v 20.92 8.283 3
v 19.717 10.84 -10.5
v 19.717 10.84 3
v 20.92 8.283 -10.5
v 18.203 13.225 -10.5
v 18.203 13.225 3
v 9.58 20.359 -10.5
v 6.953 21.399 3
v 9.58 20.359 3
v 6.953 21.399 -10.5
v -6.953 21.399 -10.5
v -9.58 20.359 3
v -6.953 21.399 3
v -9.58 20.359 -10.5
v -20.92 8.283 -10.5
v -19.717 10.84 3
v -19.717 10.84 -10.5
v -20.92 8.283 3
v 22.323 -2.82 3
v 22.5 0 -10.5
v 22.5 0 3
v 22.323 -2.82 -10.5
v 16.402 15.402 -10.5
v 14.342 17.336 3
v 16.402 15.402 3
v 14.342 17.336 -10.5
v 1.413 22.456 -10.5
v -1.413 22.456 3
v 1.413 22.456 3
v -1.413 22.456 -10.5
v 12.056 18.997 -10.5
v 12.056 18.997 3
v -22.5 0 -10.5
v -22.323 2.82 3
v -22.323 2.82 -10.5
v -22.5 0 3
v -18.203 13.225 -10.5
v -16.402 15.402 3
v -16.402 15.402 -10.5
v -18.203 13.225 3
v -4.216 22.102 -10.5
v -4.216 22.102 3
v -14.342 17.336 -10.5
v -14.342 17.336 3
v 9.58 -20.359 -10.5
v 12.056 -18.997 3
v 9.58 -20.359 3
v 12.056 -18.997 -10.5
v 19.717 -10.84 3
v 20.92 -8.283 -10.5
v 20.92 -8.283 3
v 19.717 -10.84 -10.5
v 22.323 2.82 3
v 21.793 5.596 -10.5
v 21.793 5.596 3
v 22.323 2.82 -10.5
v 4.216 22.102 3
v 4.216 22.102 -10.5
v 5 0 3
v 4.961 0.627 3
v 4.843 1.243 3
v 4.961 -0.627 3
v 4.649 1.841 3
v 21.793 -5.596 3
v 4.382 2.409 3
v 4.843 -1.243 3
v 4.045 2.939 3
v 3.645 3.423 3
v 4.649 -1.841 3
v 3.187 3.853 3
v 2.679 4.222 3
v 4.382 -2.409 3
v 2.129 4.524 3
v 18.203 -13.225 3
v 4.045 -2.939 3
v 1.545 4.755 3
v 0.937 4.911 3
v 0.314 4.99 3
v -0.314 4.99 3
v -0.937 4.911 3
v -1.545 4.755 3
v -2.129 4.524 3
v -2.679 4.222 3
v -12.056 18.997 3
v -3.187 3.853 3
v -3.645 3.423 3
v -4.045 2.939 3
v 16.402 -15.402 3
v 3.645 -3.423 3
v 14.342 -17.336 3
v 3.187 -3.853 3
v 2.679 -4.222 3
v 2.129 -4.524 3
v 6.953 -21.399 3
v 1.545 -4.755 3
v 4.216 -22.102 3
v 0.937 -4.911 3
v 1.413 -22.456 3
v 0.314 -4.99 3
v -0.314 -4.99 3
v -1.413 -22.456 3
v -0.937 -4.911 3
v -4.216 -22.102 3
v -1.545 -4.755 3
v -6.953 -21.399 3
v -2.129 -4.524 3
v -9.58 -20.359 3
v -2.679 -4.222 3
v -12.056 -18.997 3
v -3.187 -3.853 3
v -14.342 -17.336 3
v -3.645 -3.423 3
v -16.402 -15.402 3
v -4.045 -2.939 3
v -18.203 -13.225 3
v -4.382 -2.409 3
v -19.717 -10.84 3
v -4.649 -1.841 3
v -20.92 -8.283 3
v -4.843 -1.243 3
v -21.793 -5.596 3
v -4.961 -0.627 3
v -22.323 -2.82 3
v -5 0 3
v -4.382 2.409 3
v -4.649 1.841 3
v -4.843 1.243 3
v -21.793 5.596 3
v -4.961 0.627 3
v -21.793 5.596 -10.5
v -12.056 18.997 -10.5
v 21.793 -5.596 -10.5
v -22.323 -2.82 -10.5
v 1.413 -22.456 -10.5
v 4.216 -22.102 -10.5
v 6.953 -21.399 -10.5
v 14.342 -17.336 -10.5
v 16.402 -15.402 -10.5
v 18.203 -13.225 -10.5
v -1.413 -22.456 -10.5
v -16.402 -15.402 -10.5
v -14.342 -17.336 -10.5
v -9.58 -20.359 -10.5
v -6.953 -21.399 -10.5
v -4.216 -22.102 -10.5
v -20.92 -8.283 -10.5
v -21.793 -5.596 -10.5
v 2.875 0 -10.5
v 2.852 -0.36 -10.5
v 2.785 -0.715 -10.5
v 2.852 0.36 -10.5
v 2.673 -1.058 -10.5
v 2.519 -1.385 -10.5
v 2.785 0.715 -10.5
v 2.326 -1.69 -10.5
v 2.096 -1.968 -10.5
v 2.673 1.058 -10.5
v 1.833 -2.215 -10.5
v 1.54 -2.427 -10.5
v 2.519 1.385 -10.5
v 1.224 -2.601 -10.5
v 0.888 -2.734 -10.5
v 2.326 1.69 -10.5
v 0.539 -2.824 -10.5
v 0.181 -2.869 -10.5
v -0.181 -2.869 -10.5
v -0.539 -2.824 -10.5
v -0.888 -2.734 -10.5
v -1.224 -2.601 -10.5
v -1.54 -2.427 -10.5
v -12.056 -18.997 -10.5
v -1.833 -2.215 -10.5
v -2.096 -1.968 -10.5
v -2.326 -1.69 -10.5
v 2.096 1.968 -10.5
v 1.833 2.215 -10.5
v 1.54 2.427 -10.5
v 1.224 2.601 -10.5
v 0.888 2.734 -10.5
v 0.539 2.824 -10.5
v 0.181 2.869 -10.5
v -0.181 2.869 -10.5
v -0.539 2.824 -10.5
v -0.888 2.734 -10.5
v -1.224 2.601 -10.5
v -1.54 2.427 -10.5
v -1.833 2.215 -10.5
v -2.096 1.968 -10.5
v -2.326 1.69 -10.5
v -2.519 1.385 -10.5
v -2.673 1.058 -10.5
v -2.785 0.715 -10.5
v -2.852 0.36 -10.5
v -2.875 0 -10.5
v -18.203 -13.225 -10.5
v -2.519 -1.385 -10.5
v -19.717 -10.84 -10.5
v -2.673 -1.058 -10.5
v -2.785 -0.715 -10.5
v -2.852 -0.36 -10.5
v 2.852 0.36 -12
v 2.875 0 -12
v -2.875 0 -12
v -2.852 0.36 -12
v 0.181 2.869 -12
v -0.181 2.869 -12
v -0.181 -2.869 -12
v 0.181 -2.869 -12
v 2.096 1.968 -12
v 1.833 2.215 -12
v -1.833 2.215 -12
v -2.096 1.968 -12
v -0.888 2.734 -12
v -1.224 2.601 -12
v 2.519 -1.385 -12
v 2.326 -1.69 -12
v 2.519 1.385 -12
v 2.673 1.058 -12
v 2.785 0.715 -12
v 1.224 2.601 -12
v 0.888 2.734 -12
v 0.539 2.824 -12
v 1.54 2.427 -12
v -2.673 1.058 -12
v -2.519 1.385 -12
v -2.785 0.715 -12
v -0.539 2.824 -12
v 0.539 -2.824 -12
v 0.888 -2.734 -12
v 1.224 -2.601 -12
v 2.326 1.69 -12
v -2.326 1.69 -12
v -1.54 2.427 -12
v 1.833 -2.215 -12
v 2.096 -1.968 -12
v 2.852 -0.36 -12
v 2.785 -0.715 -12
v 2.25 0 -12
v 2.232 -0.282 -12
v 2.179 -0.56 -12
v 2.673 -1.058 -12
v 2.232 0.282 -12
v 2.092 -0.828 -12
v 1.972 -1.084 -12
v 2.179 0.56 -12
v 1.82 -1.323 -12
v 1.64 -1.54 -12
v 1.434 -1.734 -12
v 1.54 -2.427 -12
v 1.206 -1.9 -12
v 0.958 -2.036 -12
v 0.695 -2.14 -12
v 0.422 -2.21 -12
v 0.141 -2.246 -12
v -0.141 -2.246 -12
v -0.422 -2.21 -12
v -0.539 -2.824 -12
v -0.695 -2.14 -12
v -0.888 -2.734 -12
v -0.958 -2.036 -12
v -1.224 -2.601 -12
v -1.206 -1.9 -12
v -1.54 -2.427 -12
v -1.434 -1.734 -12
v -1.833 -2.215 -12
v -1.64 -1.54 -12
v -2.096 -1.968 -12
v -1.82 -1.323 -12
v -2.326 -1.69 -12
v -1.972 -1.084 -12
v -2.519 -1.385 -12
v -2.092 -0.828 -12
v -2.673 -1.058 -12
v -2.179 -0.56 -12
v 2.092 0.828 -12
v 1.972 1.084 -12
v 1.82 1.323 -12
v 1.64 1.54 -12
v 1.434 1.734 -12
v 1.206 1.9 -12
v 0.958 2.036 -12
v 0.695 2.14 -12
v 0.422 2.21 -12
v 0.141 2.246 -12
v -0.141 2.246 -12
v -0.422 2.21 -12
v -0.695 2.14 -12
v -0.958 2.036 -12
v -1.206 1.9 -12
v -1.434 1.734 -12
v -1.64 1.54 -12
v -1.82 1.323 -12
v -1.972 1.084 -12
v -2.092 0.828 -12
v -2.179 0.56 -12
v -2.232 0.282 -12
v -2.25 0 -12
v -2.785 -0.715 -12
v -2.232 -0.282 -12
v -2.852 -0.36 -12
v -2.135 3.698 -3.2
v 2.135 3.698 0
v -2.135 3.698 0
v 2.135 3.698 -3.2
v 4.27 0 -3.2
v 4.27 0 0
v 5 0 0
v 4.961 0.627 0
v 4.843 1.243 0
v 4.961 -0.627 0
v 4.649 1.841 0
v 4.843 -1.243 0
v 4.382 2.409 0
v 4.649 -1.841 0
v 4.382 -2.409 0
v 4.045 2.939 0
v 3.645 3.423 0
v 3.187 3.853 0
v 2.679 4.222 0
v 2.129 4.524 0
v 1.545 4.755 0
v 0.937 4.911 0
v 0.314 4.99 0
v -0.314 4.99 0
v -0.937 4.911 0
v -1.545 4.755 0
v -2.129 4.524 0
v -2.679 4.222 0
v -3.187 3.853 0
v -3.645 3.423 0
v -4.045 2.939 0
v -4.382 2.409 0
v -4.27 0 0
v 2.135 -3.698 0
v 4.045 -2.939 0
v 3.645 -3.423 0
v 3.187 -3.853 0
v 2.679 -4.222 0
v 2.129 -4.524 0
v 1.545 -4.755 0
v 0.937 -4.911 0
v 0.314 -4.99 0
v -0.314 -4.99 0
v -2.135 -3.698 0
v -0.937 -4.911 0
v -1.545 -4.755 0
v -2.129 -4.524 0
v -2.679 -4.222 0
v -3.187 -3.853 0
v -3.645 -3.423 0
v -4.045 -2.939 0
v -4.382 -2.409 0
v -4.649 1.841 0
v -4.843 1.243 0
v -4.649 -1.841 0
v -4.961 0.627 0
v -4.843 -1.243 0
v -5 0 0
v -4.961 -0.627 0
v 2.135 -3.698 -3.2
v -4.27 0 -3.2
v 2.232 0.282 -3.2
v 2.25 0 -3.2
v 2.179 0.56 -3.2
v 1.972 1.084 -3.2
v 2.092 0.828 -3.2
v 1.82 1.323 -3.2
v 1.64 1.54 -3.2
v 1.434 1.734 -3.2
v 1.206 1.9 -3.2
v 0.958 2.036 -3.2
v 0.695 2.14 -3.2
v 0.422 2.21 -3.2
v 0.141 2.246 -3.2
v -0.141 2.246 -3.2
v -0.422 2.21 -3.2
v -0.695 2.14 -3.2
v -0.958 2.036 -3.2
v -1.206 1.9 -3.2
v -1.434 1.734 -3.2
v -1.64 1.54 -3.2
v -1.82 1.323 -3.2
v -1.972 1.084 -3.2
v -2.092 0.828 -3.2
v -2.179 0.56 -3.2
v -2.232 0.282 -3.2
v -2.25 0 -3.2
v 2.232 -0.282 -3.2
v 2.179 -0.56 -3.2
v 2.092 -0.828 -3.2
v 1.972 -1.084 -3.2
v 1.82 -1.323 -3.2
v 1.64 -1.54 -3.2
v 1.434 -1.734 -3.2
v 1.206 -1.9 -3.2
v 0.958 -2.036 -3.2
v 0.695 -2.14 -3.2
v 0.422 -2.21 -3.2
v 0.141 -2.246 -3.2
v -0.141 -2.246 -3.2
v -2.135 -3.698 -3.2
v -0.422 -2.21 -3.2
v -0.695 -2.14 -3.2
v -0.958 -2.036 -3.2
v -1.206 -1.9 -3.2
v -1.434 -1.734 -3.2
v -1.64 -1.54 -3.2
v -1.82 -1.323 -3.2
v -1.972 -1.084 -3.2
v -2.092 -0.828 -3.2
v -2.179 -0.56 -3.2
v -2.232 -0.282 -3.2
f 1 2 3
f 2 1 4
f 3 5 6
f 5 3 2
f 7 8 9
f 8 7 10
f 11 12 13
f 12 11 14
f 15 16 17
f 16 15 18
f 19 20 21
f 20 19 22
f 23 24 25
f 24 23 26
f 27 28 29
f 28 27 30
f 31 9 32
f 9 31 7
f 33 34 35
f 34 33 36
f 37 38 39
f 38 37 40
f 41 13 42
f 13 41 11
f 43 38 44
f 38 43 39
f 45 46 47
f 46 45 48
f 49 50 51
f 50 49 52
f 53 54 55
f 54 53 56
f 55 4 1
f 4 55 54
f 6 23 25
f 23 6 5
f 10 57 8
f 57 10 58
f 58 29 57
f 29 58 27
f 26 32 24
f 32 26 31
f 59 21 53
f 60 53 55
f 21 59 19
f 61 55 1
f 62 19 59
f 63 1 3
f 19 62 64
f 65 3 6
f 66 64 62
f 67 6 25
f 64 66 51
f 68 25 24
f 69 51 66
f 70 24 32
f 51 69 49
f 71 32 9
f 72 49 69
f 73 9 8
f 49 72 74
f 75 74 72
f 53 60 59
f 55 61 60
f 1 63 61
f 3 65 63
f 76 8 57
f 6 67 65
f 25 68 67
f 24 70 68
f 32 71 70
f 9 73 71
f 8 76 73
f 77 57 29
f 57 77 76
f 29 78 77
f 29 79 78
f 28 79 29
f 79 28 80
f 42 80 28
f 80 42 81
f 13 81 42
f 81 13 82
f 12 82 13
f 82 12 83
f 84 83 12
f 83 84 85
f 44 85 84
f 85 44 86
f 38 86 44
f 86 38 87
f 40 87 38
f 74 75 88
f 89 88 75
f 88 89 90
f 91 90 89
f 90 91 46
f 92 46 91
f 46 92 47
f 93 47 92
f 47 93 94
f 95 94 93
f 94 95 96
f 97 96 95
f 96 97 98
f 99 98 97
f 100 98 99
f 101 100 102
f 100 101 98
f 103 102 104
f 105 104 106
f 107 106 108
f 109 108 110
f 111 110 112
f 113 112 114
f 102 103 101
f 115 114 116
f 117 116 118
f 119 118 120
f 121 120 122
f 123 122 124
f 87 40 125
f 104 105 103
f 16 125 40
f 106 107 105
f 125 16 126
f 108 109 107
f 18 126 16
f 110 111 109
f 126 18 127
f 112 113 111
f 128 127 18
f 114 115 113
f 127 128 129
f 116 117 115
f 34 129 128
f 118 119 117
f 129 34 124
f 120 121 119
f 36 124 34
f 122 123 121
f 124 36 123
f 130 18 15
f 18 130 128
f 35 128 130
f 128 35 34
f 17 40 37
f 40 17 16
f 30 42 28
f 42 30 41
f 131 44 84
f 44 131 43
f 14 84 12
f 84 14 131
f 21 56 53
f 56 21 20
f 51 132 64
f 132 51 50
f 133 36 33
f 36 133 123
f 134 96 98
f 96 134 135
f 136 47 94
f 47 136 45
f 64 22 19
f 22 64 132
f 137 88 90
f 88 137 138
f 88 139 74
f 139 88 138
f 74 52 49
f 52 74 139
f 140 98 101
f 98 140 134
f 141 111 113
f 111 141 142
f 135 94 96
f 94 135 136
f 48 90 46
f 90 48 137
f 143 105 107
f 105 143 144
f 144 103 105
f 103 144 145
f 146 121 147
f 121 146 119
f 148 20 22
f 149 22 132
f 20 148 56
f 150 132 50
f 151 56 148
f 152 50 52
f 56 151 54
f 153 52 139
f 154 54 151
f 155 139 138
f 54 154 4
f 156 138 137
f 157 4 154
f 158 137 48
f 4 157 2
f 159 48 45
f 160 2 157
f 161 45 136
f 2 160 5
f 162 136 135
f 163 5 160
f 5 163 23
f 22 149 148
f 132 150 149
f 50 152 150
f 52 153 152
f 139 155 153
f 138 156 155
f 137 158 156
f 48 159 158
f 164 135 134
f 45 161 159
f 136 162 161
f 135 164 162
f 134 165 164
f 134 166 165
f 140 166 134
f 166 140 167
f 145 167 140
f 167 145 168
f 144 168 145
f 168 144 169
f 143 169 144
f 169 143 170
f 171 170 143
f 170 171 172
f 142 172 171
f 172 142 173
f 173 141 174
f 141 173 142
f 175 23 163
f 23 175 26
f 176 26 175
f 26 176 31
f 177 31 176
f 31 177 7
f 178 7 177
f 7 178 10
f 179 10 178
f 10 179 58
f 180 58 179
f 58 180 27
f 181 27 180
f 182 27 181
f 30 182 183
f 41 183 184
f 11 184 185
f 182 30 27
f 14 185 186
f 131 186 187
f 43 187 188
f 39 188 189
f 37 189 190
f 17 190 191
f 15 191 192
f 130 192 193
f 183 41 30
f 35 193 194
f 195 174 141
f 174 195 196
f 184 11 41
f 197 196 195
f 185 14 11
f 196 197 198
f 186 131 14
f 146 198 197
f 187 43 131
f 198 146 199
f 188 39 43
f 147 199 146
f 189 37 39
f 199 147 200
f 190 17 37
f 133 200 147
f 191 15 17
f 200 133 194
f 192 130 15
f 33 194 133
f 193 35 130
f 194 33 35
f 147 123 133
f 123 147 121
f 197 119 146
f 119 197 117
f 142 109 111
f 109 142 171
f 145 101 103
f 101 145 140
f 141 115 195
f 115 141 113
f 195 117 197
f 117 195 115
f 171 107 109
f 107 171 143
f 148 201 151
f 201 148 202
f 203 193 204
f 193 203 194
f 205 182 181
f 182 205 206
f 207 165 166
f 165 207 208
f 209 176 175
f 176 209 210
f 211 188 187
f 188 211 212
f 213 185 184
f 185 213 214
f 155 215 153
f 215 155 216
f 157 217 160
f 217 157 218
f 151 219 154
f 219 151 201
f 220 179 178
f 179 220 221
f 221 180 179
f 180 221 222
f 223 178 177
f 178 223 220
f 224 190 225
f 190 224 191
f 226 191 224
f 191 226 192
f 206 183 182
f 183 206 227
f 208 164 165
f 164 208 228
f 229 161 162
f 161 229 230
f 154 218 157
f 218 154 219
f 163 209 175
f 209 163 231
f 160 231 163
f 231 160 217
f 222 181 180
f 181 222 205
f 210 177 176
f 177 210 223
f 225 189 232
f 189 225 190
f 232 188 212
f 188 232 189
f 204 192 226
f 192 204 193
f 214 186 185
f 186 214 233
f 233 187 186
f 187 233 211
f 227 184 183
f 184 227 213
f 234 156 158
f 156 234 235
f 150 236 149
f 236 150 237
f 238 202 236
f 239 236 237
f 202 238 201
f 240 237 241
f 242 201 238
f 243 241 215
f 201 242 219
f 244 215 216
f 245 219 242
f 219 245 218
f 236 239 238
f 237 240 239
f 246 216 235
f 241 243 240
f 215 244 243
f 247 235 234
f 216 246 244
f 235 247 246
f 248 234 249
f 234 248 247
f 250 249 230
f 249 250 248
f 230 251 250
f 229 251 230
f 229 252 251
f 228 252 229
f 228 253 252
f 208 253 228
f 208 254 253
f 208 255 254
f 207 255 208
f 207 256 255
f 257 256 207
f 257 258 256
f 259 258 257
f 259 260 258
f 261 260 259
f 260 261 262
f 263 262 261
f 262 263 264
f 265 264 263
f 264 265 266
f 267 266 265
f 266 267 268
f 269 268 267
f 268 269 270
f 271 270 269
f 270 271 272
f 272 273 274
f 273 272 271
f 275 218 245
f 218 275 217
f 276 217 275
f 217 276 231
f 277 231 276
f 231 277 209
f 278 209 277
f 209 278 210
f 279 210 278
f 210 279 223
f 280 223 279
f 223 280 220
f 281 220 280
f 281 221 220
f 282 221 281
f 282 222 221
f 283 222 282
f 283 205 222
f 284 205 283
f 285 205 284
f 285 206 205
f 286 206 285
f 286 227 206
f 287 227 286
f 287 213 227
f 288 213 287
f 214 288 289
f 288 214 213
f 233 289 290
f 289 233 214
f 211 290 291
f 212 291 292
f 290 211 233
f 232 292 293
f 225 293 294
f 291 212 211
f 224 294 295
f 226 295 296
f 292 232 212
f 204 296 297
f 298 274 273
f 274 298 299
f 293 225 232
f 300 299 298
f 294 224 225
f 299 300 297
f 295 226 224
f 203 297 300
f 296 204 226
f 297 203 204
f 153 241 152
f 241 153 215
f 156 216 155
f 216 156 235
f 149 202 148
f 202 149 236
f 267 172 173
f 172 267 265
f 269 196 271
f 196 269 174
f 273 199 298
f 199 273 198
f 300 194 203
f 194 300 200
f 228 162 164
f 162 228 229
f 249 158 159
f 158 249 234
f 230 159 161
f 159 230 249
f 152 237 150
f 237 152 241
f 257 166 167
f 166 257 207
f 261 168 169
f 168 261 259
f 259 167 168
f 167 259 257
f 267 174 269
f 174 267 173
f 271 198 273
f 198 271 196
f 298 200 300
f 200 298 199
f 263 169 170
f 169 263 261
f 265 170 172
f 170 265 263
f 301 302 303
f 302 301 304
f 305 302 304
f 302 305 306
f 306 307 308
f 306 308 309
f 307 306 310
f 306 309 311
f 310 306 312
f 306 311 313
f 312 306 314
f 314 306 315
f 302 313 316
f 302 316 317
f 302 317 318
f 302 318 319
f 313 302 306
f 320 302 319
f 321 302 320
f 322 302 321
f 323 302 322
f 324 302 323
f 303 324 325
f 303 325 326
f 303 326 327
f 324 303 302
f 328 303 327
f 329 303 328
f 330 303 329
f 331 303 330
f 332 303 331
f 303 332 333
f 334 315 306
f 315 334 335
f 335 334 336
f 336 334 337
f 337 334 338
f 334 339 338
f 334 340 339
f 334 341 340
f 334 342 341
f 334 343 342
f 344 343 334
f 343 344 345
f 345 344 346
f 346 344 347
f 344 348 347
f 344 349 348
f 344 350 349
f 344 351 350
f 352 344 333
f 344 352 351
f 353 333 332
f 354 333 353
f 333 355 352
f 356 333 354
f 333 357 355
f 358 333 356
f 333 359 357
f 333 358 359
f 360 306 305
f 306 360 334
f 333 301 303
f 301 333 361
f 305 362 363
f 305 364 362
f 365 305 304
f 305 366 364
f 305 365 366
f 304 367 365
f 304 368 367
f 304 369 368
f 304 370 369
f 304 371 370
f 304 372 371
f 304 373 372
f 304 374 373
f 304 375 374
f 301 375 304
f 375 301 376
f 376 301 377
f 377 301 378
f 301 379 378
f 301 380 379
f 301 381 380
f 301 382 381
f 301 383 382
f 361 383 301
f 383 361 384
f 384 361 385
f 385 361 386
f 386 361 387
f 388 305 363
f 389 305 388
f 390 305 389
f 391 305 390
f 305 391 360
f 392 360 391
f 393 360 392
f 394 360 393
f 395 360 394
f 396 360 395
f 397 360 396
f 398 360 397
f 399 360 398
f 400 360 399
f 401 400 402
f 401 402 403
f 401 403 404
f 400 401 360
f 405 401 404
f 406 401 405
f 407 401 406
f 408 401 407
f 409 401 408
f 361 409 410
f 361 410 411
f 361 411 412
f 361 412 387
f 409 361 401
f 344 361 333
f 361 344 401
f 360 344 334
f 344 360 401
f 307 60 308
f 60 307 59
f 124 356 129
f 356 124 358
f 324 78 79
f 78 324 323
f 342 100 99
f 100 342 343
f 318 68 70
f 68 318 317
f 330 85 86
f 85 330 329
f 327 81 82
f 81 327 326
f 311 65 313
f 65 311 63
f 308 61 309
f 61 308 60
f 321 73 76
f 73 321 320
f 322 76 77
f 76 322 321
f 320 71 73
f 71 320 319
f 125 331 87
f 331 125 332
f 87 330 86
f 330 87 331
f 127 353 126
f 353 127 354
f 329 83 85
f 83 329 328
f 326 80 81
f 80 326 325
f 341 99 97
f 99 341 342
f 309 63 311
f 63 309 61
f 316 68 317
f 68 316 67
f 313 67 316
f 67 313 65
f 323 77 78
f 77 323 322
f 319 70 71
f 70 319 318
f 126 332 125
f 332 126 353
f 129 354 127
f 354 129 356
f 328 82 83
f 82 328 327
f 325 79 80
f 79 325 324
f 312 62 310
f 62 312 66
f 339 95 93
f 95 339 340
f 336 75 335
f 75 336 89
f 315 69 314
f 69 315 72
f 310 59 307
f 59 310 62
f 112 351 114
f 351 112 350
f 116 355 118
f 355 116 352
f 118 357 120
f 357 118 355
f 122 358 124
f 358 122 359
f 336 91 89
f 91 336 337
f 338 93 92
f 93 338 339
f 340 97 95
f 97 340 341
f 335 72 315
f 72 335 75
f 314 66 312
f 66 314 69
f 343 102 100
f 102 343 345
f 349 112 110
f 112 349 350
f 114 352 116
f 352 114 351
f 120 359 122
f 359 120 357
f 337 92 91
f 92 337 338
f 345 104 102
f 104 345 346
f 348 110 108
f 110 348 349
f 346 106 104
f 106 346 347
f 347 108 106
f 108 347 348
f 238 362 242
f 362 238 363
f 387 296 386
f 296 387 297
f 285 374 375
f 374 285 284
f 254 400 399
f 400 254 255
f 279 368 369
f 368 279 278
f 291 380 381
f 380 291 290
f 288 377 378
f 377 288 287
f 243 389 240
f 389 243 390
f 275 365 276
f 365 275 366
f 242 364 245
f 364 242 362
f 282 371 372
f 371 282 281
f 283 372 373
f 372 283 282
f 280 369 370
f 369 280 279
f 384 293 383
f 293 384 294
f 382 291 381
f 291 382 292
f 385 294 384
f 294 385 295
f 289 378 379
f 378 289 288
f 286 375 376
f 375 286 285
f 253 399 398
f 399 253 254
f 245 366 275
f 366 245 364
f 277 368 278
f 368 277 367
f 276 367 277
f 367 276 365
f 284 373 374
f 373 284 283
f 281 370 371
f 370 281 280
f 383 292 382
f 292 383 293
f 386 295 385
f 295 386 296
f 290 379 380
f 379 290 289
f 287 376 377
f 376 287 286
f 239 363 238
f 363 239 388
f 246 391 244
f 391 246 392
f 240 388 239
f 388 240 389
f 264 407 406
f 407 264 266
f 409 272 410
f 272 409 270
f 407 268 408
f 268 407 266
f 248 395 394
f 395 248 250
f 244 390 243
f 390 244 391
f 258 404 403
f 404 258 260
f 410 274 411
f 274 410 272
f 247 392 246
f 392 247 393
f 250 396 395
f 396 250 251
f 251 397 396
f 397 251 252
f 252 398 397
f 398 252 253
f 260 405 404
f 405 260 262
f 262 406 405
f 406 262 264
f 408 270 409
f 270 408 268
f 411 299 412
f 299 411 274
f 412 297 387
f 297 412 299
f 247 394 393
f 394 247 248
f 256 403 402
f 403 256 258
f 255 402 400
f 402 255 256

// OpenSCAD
$fn = 50;


difference() {
	union() {
		translate(v = [0, 0, -10.5000000000]) {
			cylinder(h = 13.5000000000, r = 22.5000000000);
		}
		#translate(v = [0, 0, -12.0000000000]) {
			cylinder(h = 12, r = 2.8750000000);
		}
	}
	union() {
		translate(v = [0, 0, 0]) {
			rotate(a = [0, 0, 0]) {
				difference() {
					union() {
						translate(v = [0, 0, -3.2000000000]) {
							linear_extrude(height = 3.2000000000) {
								polygon(points = [[4.2698000000, 0.0000000000], [2.1349000000, 3.6977552691], [-2.1349000000, 3.6977552691], [-4.2698000000, 0.0000000000], [-2.1349000000, -3.6977552691], [2.1349000000, -3.6977552691]]);
							}
						}
					}
					union();
				}
			}
		}
		#cylinder(h = 3, r = 5.0000000000);
		#translate(v = [0, 0, -100.0000000000]) {
			cylinder(h = 200, r = 2.2500000000);
		}
	}
}
